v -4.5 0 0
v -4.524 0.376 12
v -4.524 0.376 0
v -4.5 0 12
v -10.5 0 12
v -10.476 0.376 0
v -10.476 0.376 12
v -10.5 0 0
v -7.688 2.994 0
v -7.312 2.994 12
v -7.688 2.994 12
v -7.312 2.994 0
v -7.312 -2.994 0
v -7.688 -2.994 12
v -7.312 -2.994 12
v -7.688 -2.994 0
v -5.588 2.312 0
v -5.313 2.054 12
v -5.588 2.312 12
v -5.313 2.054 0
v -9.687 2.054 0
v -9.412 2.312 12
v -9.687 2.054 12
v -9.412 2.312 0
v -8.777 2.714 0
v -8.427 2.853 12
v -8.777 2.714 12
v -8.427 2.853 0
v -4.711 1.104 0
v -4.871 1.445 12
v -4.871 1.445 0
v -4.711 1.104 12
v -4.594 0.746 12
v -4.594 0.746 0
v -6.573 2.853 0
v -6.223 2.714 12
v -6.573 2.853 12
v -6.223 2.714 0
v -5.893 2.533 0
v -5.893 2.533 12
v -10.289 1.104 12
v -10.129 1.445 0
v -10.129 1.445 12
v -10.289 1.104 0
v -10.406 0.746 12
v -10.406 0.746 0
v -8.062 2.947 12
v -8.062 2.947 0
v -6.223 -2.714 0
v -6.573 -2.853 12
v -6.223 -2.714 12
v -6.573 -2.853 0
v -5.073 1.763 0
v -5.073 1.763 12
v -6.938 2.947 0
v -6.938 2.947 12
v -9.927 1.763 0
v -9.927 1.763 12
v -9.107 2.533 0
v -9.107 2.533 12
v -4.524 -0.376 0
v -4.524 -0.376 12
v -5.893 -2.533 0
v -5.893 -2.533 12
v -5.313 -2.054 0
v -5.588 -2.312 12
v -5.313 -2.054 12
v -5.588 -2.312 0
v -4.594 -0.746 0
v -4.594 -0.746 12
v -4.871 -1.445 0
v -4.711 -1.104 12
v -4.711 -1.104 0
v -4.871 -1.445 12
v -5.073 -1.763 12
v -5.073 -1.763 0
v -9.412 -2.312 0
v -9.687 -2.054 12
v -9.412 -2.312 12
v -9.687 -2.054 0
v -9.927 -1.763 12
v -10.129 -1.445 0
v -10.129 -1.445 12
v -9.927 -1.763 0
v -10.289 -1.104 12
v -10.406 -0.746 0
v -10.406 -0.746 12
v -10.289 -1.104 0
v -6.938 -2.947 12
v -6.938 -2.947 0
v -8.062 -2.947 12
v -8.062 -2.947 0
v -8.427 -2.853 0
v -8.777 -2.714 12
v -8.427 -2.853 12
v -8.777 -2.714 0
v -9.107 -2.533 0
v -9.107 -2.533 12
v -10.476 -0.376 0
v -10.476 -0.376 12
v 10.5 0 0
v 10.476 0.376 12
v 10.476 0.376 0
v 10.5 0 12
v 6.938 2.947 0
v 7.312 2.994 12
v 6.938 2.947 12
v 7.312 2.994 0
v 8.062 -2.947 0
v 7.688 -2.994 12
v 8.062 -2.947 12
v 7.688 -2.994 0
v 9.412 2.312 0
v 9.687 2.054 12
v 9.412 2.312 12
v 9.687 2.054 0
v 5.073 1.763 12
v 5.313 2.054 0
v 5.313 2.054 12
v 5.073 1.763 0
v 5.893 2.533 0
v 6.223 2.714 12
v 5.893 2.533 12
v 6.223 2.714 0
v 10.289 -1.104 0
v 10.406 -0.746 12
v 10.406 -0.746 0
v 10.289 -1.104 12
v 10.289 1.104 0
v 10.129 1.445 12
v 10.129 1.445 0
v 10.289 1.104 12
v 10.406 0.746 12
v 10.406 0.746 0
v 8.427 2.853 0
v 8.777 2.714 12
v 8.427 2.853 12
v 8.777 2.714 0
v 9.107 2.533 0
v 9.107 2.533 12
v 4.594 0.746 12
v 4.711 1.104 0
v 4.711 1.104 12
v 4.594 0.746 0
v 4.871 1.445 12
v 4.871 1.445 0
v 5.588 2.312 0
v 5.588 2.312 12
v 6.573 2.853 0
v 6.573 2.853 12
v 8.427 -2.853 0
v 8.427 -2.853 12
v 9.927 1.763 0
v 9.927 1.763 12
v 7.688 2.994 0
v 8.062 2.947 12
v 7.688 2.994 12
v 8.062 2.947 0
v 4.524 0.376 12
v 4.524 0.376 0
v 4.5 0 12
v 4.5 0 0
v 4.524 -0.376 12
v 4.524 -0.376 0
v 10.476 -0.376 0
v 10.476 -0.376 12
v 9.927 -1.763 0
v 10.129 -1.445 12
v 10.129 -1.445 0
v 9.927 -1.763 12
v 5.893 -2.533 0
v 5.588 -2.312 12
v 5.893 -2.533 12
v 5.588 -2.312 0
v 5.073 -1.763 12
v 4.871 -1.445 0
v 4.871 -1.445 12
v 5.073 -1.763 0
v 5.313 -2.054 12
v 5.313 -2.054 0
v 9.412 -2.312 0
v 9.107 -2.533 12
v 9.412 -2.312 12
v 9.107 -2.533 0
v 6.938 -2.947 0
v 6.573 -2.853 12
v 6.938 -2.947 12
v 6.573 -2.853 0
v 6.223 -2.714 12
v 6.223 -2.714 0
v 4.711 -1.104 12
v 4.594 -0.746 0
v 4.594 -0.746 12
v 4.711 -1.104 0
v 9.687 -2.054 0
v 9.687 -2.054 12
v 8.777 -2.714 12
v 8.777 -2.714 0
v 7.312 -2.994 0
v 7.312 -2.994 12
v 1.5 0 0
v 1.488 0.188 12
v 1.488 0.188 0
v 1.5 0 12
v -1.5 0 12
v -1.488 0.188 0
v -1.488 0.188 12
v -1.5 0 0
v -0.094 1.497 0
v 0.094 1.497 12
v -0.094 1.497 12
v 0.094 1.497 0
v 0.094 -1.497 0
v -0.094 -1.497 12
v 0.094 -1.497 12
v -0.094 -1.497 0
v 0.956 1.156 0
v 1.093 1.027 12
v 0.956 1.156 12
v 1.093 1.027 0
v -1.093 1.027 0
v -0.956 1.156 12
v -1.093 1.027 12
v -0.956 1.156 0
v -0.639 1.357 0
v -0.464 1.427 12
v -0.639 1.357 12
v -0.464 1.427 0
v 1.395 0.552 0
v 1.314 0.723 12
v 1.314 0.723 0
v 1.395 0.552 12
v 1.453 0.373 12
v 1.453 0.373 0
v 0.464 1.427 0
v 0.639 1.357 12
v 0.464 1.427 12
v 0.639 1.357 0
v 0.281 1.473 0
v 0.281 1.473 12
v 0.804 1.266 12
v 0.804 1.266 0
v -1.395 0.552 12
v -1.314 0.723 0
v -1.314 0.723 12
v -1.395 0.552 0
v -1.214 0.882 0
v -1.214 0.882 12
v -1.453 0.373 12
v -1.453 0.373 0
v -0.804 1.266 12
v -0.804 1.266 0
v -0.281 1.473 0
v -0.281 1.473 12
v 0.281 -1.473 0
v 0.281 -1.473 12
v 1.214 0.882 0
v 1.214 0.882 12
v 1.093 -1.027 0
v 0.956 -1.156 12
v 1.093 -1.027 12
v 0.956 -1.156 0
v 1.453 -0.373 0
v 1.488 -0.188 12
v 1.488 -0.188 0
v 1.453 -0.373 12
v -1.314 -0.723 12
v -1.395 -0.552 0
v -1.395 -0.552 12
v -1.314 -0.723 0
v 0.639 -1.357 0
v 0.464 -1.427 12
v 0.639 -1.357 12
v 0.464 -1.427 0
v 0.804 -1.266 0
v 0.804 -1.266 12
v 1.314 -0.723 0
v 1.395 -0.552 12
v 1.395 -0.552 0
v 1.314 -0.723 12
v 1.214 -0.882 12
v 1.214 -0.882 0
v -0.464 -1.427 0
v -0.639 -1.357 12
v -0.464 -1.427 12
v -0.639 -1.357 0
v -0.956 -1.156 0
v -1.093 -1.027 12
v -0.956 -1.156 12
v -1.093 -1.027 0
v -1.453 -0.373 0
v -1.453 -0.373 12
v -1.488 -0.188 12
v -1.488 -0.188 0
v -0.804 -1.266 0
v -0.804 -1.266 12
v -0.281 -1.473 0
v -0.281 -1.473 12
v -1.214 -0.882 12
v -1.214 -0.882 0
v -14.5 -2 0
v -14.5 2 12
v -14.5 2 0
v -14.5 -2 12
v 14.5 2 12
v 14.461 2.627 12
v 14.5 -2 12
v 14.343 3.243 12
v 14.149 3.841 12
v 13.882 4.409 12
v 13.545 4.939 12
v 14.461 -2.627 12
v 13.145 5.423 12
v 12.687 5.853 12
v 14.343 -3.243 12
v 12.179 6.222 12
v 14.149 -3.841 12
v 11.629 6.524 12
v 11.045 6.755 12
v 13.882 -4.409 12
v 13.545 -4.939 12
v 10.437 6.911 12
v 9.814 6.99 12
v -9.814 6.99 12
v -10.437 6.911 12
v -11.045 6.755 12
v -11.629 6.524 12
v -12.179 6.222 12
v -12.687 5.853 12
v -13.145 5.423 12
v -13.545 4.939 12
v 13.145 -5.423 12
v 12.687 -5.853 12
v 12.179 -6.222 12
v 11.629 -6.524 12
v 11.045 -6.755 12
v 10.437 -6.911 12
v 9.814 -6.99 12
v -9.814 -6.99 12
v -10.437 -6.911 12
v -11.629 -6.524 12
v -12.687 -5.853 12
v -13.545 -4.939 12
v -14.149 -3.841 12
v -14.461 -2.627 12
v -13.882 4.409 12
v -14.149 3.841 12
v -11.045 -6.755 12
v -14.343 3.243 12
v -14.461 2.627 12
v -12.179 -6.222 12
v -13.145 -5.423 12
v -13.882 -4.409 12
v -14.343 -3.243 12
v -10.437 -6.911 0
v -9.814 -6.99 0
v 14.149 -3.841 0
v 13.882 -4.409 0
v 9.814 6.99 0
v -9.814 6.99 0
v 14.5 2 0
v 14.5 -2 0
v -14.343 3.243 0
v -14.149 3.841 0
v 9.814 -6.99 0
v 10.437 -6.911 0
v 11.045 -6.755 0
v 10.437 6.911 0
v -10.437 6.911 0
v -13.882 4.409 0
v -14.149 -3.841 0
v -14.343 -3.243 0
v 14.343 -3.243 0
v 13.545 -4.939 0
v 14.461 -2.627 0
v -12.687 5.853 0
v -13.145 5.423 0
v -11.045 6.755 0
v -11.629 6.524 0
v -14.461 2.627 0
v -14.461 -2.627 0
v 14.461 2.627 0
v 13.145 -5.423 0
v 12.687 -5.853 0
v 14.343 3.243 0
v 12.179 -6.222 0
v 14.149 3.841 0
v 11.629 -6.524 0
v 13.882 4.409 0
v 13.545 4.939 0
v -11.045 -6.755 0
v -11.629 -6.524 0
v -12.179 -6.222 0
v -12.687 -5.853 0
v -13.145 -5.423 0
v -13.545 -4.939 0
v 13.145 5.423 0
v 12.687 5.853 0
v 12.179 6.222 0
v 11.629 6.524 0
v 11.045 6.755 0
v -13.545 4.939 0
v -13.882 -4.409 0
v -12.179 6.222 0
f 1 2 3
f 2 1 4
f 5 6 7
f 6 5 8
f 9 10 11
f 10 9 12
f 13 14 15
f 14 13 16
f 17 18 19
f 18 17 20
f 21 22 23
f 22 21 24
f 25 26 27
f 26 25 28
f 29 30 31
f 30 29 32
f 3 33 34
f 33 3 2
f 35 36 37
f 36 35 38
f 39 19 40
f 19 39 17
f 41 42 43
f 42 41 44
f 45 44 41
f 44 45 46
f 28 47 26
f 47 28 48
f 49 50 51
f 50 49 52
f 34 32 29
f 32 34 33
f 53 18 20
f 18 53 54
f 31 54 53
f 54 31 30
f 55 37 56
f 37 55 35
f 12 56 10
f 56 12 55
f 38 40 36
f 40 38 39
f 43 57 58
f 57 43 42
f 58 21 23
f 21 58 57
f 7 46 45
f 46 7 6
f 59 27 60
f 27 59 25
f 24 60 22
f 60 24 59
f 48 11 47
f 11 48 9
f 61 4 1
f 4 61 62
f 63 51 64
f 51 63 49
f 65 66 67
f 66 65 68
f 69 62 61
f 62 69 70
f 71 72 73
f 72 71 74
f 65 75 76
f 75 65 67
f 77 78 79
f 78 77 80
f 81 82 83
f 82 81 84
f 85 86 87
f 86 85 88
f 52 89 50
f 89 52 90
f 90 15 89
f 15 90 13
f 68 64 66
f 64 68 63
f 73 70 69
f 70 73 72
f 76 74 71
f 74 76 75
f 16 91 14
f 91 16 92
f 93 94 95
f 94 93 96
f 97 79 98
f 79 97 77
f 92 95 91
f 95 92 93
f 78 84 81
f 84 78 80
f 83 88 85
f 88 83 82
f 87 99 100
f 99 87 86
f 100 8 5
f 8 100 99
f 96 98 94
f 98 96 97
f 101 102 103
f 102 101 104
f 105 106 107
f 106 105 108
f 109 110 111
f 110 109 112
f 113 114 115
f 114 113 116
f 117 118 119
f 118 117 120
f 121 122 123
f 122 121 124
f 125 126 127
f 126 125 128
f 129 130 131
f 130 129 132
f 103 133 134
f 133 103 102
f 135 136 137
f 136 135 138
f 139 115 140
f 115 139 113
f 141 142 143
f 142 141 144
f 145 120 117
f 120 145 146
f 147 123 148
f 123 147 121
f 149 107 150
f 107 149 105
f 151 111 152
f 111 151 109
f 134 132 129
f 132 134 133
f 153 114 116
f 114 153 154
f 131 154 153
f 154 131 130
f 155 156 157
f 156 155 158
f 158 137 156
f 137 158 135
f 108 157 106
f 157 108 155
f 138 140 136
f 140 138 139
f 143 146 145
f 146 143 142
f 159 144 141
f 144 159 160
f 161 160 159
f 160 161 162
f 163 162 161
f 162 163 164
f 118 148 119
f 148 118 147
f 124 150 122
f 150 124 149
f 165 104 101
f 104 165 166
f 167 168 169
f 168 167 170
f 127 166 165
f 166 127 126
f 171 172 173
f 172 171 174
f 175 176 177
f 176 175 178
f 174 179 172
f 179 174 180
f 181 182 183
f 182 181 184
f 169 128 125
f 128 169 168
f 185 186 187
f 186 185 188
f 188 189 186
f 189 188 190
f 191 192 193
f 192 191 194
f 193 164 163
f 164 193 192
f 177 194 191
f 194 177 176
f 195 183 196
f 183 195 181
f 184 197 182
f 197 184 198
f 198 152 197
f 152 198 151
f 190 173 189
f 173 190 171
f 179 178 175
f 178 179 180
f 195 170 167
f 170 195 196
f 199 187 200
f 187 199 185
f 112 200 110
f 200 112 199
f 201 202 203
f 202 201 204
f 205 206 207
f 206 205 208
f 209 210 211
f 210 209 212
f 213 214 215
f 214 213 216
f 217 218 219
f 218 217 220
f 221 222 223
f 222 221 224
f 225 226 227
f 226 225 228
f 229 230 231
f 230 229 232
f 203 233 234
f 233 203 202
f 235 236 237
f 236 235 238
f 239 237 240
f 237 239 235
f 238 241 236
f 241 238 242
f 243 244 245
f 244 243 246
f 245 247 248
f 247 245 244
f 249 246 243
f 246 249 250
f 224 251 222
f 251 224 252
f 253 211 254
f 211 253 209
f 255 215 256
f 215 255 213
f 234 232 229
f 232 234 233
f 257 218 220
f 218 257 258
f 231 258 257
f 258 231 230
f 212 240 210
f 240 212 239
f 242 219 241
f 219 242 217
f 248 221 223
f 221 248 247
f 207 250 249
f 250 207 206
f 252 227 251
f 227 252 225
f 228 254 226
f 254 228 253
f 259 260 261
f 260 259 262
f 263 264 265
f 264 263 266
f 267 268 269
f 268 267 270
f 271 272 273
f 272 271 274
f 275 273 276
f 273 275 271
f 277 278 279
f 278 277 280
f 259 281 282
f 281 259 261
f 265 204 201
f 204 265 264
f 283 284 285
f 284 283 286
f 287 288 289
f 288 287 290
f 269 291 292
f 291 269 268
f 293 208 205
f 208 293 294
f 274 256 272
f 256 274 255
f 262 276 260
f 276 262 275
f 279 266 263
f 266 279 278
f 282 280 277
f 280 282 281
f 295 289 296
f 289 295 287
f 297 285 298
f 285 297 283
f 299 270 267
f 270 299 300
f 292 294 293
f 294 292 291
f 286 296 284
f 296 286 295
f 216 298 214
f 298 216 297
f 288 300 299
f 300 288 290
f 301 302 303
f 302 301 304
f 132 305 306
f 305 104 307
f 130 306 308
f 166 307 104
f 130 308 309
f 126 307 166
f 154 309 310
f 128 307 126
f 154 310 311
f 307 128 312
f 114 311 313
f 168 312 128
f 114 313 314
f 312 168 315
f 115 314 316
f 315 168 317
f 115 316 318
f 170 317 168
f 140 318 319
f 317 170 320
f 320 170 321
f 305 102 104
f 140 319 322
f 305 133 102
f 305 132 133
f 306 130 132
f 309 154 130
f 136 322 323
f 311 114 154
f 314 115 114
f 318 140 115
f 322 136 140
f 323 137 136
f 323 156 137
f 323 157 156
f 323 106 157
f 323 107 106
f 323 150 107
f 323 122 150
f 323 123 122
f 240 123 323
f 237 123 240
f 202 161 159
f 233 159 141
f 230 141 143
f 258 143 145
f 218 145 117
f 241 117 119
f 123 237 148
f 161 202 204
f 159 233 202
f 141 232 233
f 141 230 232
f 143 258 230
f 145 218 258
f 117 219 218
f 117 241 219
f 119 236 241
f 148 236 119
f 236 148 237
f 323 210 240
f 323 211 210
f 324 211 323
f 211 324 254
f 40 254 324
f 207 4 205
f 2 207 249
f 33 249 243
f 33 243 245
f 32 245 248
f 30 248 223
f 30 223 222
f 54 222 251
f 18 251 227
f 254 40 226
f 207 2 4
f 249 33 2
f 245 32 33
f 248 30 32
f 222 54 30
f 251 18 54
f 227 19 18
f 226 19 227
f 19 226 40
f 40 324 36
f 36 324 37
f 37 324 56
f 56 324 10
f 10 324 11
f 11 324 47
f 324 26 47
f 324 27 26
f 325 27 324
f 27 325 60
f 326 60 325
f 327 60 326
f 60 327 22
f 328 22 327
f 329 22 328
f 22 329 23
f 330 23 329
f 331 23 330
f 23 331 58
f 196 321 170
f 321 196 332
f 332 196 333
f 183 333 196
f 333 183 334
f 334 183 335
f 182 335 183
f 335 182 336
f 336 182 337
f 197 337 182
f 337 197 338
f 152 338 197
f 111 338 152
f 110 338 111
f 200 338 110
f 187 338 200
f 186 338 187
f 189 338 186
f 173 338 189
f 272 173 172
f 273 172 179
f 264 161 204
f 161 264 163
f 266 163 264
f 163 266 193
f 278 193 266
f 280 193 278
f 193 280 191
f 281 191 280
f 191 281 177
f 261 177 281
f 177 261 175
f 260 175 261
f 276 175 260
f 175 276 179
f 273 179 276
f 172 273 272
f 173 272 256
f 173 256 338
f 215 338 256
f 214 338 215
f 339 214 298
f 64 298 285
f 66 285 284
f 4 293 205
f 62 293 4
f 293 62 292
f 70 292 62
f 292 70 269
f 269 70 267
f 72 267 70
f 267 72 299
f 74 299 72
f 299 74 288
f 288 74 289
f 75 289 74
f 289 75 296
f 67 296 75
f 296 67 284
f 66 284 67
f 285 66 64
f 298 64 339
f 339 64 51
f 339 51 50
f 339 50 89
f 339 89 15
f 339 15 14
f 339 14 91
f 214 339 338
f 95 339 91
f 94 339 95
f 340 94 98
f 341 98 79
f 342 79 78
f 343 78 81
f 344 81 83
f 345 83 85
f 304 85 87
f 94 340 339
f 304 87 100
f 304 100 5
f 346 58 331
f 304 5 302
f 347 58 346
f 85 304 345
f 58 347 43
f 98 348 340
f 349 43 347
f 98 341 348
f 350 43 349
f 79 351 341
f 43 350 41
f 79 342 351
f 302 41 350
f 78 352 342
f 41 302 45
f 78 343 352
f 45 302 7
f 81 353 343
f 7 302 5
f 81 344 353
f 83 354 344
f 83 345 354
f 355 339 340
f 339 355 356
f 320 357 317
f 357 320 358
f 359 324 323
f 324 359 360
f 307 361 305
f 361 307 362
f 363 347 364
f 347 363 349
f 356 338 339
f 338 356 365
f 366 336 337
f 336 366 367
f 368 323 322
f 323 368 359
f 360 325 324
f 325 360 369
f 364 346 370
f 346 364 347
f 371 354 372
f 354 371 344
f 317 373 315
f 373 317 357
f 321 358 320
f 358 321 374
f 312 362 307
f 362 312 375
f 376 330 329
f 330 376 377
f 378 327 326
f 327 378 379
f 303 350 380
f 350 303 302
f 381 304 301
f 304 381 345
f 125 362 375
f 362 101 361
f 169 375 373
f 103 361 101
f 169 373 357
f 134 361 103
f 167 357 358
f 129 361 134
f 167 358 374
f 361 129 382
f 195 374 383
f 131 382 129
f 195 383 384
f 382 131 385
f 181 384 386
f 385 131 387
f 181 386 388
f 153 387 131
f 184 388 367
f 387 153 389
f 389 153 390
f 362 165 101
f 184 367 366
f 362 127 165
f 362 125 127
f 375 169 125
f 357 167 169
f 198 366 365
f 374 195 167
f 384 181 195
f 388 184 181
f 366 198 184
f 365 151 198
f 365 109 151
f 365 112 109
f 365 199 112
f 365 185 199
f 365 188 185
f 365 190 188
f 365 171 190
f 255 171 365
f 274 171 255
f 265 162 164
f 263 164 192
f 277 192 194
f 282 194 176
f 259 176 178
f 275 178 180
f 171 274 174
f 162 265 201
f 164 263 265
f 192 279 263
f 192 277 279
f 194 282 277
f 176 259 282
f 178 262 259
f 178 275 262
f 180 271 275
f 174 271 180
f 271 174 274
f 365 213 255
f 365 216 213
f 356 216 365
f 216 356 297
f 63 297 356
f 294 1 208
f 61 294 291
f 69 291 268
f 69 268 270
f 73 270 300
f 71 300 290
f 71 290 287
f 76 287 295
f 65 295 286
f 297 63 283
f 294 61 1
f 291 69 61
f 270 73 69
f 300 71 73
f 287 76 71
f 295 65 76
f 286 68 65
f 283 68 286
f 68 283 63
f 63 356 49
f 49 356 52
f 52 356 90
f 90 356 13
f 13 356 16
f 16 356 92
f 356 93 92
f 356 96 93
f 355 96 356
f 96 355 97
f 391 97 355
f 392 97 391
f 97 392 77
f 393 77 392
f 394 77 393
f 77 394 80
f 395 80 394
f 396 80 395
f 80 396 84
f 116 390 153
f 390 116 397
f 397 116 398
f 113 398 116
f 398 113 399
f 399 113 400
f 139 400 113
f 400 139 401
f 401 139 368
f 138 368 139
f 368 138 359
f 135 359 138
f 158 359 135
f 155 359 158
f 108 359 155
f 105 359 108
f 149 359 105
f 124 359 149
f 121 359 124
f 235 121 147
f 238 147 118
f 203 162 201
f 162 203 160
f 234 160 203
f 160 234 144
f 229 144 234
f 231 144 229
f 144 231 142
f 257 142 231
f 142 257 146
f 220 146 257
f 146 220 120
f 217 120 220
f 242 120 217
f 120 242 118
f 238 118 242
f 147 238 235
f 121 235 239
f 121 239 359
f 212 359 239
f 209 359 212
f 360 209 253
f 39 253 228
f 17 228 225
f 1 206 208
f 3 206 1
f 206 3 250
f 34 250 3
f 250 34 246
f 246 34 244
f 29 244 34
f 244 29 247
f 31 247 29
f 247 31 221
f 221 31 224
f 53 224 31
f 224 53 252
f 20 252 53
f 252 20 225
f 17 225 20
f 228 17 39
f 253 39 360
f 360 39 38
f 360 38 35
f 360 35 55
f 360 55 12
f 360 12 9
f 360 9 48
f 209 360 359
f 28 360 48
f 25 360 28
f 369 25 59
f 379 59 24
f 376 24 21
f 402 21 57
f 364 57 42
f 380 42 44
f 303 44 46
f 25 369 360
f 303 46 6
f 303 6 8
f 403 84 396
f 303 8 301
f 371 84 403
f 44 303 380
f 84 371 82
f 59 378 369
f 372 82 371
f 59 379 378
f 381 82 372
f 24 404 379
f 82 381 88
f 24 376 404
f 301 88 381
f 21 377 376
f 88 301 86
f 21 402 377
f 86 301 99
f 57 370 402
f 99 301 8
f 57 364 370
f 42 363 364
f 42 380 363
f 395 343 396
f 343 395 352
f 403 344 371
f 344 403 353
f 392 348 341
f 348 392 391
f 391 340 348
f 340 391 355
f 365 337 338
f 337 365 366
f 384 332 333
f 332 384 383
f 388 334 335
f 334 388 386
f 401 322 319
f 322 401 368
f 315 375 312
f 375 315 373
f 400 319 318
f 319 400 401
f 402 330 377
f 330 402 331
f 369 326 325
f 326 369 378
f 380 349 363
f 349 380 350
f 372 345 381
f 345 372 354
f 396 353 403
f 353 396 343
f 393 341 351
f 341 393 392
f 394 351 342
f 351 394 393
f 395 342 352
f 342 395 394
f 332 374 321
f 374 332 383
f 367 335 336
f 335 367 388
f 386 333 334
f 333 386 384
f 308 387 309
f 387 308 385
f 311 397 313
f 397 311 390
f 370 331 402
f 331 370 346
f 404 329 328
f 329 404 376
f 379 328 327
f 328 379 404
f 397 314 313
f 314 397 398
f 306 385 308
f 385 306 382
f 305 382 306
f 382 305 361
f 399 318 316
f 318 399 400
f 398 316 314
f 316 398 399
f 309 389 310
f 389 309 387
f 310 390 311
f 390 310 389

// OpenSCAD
$fn = 50;


difference() {
	union() {
		*color(alpha = 1.0000000000, c = "gray") {
			translate(v = [0, 7, 0]) {
				linear_extrude(height = 1) {
					text(font = "Arial:style=Bold", halign = "center", size = 4.5000000000, text = "COMMENT plate main", valign = "center");
				}
			}
		}
		*color(alpha = 1.0000000000, c = "gray") {
			translate(v = [0, 14, 0]) {
				linear_extrude(height = 1) {
					text(font = "Arial:style=Bold", halign = "center", size = 4.5000000000, text = "COMMENT description oobb_plate_shape_p_type_12_depth_2_width_1_height_12_thickness_true_both_holes", valign = "center");
				}
			}
		}
		hull() {
			translate(v = [-9.5000000000, 2.0000000000, 0]) {
				cylinder(h = 12, r = 5);
			}
			translate(v = [9.5000000000, 2.0000000000, 0]) {
				cylinder(h = 12, r = 5);
			}
			translate(v = [-9.5000000000, -2.0000000000, 0]) {
				cylinder(h = 12, r = 5);
			}
			translate(v = [9.5000000000, -2.0000000000, 0]) {
				cylinder(h = 12, r = 5);
			}
		}
	}
	union() {
		*color(alpha = 1.0000000000, c = "gray") {
			translate(v = [0, 7, 0]) {
				linear_extrude(height = 1) {
					text(font = "Arial:style=Bold", halign = "center", size = 4.5000000000, text = "COMMENT holes main", valign = "center");
				}
			}
		}
		*color(alpha = 1.0000000000, c = "gray") {
			translate(v = [0, 14, 0]) {
				linear_extrude(height = 1) {
					text(font = "Arial:style=Bold", halign = "center", size = 4.5000000000, text = "COMMENT description oobb_holes_shape_n_type_2_width_1_height_12_thickness_true_both_holes", valign = "center");
				}
			}
		}
		translate(v = [-7.5000000000, 0.0000000000, 0]) {
			translate(v = [0, 0, -50]) {
				cylinder(h = 100, r = 3.0000000000);
			}
		}
		translate(v = [7.5000000000, 0.0000000000, 0]) {
			translate(v = [0, 0, -50]) {
				cylinder(h = 100, r = 3.0000000000);
			}
		}
		translate(v = [-7.5000000000, 0.0000000000, 0]) {
			translate(v = [0, 0, -50]) {
				cylinder(h = 100, r = 1.5000000000);
			}
		}
		translate(v = [0, 0, -50]) {
			cylinder(h = 100, r = 1.5000000000);
		}
		translate(v = [7.5000000000, 0.0000000000, 0]) {
			translate(v = [0, 0, -50]) {
				cylinder(h = 100, r = 1.5000000000);
			}
		}
	}
}
